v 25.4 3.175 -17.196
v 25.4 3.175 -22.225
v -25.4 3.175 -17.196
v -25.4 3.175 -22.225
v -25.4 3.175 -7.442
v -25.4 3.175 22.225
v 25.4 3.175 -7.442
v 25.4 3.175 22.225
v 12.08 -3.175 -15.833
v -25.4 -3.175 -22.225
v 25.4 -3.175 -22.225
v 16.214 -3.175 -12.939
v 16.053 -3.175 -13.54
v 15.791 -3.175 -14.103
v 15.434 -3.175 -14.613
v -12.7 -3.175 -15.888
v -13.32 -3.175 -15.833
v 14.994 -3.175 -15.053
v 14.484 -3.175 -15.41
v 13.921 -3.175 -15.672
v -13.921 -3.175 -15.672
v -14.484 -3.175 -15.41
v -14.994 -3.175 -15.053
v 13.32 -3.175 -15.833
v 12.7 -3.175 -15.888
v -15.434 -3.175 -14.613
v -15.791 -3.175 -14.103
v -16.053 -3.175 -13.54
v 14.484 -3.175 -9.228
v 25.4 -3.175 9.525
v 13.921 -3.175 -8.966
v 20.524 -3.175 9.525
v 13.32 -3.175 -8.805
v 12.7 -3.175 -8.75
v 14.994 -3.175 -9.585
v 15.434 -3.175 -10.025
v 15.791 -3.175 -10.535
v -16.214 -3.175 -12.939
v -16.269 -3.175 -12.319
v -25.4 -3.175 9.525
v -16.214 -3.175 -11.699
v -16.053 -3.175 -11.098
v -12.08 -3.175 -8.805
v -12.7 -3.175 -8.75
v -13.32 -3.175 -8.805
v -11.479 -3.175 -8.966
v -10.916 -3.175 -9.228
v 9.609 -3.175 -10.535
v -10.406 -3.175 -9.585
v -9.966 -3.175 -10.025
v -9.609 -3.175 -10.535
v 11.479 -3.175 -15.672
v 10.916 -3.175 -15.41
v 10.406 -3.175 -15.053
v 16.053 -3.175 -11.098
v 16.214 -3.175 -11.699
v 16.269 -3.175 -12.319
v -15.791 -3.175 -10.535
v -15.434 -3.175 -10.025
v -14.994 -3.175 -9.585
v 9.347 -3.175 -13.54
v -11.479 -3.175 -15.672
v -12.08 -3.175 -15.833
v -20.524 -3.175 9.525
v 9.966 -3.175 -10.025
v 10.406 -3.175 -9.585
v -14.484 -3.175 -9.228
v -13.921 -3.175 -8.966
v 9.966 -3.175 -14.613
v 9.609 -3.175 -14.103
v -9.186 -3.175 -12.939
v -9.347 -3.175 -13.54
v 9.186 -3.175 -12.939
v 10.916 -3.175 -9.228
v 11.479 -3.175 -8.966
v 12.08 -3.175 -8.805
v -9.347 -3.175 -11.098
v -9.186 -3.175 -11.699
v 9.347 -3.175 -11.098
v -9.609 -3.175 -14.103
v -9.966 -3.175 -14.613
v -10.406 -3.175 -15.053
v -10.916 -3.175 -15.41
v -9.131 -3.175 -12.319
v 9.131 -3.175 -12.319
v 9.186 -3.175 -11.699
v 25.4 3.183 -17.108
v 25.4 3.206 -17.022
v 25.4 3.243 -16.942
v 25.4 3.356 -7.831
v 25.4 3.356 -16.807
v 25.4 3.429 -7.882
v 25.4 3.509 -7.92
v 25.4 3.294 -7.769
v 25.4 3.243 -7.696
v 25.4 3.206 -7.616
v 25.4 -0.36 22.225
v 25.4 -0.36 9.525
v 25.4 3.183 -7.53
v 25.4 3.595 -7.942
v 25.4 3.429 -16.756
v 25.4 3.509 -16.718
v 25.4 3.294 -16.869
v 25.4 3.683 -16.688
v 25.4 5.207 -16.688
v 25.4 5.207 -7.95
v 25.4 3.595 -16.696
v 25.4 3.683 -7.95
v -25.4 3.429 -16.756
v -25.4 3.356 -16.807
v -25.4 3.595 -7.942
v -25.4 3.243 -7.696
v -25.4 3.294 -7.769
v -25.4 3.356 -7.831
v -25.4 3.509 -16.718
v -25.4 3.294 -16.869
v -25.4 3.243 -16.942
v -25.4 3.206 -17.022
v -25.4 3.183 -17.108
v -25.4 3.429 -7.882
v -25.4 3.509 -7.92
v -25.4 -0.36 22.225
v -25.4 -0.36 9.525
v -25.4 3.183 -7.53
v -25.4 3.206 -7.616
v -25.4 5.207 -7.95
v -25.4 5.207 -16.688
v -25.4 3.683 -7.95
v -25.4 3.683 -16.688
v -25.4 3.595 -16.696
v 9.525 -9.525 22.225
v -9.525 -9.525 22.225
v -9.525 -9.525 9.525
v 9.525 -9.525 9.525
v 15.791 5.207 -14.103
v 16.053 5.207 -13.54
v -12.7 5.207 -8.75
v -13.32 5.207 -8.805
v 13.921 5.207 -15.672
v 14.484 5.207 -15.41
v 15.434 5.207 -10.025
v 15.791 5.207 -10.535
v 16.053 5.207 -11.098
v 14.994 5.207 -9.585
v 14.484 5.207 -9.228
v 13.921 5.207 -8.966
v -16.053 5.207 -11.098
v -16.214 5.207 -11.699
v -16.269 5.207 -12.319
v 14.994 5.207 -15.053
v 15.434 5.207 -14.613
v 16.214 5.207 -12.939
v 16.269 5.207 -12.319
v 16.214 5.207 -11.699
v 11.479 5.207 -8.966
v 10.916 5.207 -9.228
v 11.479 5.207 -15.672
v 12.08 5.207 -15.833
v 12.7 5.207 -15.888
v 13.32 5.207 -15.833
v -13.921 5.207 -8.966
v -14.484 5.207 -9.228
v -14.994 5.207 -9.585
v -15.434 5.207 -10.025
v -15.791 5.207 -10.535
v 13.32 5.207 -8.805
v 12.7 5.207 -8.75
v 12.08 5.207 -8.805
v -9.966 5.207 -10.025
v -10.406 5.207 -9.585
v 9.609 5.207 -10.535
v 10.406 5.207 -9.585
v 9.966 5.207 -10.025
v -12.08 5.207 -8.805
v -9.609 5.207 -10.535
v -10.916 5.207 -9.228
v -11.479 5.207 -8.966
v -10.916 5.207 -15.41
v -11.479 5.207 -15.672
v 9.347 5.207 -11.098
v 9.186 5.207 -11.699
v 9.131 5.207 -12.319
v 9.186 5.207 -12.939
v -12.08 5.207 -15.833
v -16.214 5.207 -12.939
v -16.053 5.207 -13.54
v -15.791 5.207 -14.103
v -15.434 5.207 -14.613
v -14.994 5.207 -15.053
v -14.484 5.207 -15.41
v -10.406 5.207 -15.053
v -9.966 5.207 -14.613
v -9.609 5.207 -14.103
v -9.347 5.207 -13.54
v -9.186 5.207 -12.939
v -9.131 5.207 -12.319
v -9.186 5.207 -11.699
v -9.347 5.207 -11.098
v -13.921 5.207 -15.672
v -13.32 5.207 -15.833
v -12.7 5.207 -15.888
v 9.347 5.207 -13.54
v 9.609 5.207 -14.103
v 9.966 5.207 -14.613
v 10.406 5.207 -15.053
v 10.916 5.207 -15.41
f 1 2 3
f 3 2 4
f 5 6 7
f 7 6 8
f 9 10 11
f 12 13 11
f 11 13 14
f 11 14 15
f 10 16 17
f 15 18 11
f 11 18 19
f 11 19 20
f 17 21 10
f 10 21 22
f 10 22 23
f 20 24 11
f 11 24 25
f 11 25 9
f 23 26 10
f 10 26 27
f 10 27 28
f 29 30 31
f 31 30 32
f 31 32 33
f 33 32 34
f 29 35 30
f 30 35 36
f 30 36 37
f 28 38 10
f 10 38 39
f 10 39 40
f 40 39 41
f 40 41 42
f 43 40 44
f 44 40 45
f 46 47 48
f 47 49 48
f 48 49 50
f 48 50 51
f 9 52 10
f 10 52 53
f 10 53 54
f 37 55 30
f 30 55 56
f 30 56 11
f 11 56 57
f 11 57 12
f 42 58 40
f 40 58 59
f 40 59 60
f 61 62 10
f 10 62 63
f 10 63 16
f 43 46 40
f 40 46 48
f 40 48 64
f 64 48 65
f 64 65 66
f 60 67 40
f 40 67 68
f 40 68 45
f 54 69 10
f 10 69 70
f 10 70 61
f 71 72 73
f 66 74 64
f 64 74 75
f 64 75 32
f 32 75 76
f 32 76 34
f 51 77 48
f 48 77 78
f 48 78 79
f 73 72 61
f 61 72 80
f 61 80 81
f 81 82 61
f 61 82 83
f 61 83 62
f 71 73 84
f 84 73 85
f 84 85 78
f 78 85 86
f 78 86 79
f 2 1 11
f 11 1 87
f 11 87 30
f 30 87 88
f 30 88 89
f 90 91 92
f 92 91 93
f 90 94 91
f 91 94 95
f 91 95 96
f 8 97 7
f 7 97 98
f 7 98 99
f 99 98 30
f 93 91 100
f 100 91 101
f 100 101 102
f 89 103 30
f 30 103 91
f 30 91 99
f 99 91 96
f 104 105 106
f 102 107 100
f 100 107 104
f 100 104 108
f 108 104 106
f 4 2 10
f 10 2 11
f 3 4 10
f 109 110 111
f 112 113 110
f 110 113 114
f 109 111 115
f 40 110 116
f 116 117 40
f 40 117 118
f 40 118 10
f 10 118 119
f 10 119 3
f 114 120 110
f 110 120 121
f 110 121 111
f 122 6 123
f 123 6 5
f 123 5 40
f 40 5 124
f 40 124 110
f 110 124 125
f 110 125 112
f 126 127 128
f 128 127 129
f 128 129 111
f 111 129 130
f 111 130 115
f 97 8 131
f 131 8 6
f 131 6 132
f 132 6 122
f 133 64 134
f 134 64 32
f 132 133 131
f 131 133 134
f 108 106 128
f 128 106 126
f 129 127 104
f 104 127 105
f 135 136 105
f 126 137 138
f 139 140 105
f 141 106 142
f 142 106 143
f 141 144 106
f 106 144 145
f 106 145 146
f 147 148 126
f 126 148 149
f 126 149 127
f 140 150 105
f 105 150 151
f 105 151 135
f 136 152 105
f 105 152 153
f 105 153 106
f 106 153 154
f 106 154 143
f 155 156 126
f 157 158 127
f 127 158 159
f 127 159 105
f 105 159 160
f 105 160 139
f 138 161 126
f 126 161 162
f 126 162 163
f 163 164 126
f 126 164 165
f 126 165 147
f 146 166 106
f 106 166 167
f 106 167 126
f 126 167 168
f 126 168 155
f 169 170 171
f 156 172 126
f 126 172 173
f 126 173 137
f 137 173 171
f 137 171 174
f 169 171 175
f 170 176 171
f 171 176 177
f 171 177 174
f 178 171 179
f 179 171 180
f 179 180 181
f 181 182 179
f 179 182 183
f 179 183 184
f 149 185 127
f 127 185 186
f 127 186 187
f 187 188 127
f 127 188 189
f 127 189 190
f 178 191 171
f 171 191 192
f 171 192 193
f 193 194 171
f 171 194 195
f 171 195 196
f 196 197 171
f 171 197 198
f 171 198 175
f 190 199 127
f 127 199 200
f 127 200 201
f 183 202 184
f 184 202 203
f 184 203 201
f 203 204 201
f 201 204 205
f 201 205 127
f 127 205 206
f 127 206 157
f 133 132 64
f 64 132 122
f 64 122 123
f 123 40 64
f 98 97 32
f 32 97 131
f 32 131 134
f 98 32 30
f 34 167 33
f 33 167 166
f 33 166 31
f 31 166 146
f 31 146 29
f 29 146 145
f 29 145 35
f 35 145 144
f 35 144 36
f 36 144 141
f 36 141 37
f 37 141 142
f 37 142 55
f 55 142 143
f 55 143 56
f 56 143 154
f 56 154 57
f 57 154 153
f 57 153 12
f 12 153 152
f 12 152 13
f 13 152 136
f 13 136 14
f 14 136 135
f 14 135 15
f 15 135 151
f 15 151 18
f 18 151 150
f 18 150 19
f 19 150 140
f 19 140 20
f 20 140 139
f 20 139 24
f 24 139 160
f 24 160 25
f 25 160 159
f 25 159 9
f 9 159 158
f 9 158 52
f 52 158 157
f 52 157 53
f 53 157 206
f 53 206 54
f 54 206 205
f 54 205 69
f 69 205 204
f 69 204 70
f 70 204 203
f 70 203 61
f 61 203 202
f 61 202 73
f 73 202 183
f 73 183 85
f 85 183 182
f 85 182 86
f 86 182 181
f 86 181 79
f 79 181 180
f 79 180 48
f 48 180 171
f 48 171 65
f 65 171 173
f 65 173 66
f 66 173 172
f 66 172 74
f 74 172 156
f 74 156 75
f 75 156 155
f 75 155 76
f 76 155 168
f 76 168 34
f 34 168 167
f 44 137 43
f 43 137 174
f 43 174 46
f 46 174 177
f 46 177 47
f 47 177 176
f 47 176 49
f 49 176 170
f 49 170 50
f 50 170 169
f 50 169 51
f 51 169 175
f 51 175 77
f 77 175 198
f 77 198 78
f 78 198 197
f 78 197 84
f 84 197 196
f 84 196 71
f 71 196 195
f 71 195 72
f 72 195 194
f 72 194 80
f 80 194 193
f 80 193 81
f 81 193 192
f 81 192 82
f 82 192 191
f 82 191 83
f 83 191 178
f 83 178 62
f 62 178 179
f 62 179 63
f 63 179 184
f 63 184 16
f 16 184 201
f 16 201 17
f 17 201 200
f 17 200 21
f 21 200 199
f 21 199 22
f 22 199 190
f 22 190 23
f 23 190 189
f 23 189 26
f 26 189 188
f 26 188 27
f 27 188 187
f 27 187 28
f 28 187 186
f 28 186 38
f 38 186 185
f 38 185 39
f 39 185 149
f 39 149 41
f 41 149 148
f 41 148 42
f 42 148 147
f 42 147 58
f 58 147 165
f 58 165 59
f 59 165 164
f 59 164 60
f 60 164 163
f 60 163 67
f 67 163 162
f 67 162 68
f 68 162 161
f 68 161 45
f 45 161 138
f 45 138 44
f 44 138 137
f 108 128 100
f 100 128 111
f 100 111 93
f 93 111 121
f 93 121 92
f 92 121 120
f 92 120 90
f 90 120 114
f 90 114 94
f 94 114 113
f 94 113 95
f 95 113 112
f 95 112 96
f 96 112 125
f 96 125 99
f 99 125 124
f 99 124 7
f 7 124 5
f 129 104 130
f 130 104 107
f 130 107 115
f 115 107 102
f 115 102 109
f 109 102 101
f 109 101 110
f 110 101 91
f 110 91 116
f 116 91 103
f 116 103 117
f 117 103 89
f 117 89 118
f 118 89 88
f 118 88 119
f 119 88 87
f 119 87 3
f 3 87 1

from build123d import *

# Parameters (mm, degrees)
SKETCH1_W           = 50.8
SKETCH1_H           = 44.45
BOSS_EXTRUDE1_DEPTH = 3.175
BOSS_EXTRUDE2_START = -3.175
SKETCH2_W           = 50.8
SKETCH2_H           = 12.7
BOSS_EXTRUDE2_DEPTH = 6.35
BOSS_EXTRUDE3_START = 3.175
SKETCH3_W           = 50.8
SKETCH3_H           = 8.7376
BOSS_EXTRUDE3_DEPTH = 2.032
CUT_EXTRUDE2_START  = 22.225
CUT_EXTRUDE2_DEPTH  = 12.7
CUT_EXTRUDE4_START  = 22.225
CUT_EXTRUDE4_DEPTH  = 12.7
CUT_EXTRUDE6_START  = 5.207
SKETCH6_R           = 3.5687
CUT_EXTRUDE6_DEPTH  = 9.525
FILLET1_R           = 0.508


with BuildPart() as part:
    # Sketch1 → Boss-Extrude1 (new, symmetric)
    with BuildSketch(Plane(origin=(0, 0, 0), x_dir=(1, 0, 0), z_dir=(0, 1, 0))):
        Rectangle(SKETCH1_W, SKETCH1_H)
    extrude(amount=BOSS_EXTRUDE1_DEPTH, both=True)

    # Sketch2 → Boss-Extrude2 (add)
    with BuildSketch(Plane(origin=(0, 0, 0), x_dir=(1, 0, 0), z_dir=(0, 1, 0)).offset(BOSS_EXTRUDE2_START)):
        with Locations((0, -15.875)):
            Rectangle(SKETCH2_W, SKETCH2_H)
    extrude(amount=-BOSS_EXTRUDE2_DEPTH)

    # Sketch3 → Boss-Extrude3 (add)
    with BuildSketch(Plane(origin=(0, 0, 0), x_dir=(1, 0, 0), z_dir=(0, 1, 0)).offset(BOSS_EXTRUDE3_START)):
        with Locations((0, 12.319)):
            Rectangle(SKETCH3_W, SKETCH3_H)
    extrude(amount=BOSS_EXTRUDE3_DEPTH)

    # Sketch4 → Cut-Extrude2 (cut)
    with BuildSketch(Plane.XY.offset(CUT_EXTRUDE2_START)):
        Polygon((-76.2, -22.225), (-9.525, -22.225), (-9.525, -9.525), (-76.2, 28.969829198), align=None)
    extrude(amount=-CUT_EXTRUDE2_DEPTH, mode=Mode.SUBTRACT)

    # Sketch5 → Cut-Extrude4 (cut)
    with BuildSketch(Plane.XY.offset(CUT_EXTRUDE4_START)):
        Polygon((9.525, -22.225), (76.2, -22.225), (76.2, 28.969829198), (9.525, -9.525), align=None)
    extrude(amount=-CUT_EXTRUDE4_DEPTH, mode=Mode.SUBTRACT)

    # Sketch6 → Cut-Extrude6 (cut)
    with BuildSketch(Plane(origin=(0, 0, 0), x_dir=(1, 0, 0), z_dir=(0, 1, 0)).offset(CUT_EXTRUDE6_START)):
        with Locations(Location((-12.7, 12.319, 0), (0, 0, 270))):
            Circle(SKETCH6_R)
        with Locations(Location((12.7, 12.319, 0), (0, 0, 270))):
            Circle(SKETCH6_R)
    extrude(amount=-CUT_EXTRUDE6_DEPTH, mode=Mode.SUBTRACT)

    # Fillet1
    fillet1_edges = [part.edges().sort_by_distance(p)[0] for p in [
        (0, 3.175, -7.9502),
        (0, 3.175, -16.6878),
    ]]
    fillet(fillet1_edges, radius=FILLET1_R)


solid = part.part
